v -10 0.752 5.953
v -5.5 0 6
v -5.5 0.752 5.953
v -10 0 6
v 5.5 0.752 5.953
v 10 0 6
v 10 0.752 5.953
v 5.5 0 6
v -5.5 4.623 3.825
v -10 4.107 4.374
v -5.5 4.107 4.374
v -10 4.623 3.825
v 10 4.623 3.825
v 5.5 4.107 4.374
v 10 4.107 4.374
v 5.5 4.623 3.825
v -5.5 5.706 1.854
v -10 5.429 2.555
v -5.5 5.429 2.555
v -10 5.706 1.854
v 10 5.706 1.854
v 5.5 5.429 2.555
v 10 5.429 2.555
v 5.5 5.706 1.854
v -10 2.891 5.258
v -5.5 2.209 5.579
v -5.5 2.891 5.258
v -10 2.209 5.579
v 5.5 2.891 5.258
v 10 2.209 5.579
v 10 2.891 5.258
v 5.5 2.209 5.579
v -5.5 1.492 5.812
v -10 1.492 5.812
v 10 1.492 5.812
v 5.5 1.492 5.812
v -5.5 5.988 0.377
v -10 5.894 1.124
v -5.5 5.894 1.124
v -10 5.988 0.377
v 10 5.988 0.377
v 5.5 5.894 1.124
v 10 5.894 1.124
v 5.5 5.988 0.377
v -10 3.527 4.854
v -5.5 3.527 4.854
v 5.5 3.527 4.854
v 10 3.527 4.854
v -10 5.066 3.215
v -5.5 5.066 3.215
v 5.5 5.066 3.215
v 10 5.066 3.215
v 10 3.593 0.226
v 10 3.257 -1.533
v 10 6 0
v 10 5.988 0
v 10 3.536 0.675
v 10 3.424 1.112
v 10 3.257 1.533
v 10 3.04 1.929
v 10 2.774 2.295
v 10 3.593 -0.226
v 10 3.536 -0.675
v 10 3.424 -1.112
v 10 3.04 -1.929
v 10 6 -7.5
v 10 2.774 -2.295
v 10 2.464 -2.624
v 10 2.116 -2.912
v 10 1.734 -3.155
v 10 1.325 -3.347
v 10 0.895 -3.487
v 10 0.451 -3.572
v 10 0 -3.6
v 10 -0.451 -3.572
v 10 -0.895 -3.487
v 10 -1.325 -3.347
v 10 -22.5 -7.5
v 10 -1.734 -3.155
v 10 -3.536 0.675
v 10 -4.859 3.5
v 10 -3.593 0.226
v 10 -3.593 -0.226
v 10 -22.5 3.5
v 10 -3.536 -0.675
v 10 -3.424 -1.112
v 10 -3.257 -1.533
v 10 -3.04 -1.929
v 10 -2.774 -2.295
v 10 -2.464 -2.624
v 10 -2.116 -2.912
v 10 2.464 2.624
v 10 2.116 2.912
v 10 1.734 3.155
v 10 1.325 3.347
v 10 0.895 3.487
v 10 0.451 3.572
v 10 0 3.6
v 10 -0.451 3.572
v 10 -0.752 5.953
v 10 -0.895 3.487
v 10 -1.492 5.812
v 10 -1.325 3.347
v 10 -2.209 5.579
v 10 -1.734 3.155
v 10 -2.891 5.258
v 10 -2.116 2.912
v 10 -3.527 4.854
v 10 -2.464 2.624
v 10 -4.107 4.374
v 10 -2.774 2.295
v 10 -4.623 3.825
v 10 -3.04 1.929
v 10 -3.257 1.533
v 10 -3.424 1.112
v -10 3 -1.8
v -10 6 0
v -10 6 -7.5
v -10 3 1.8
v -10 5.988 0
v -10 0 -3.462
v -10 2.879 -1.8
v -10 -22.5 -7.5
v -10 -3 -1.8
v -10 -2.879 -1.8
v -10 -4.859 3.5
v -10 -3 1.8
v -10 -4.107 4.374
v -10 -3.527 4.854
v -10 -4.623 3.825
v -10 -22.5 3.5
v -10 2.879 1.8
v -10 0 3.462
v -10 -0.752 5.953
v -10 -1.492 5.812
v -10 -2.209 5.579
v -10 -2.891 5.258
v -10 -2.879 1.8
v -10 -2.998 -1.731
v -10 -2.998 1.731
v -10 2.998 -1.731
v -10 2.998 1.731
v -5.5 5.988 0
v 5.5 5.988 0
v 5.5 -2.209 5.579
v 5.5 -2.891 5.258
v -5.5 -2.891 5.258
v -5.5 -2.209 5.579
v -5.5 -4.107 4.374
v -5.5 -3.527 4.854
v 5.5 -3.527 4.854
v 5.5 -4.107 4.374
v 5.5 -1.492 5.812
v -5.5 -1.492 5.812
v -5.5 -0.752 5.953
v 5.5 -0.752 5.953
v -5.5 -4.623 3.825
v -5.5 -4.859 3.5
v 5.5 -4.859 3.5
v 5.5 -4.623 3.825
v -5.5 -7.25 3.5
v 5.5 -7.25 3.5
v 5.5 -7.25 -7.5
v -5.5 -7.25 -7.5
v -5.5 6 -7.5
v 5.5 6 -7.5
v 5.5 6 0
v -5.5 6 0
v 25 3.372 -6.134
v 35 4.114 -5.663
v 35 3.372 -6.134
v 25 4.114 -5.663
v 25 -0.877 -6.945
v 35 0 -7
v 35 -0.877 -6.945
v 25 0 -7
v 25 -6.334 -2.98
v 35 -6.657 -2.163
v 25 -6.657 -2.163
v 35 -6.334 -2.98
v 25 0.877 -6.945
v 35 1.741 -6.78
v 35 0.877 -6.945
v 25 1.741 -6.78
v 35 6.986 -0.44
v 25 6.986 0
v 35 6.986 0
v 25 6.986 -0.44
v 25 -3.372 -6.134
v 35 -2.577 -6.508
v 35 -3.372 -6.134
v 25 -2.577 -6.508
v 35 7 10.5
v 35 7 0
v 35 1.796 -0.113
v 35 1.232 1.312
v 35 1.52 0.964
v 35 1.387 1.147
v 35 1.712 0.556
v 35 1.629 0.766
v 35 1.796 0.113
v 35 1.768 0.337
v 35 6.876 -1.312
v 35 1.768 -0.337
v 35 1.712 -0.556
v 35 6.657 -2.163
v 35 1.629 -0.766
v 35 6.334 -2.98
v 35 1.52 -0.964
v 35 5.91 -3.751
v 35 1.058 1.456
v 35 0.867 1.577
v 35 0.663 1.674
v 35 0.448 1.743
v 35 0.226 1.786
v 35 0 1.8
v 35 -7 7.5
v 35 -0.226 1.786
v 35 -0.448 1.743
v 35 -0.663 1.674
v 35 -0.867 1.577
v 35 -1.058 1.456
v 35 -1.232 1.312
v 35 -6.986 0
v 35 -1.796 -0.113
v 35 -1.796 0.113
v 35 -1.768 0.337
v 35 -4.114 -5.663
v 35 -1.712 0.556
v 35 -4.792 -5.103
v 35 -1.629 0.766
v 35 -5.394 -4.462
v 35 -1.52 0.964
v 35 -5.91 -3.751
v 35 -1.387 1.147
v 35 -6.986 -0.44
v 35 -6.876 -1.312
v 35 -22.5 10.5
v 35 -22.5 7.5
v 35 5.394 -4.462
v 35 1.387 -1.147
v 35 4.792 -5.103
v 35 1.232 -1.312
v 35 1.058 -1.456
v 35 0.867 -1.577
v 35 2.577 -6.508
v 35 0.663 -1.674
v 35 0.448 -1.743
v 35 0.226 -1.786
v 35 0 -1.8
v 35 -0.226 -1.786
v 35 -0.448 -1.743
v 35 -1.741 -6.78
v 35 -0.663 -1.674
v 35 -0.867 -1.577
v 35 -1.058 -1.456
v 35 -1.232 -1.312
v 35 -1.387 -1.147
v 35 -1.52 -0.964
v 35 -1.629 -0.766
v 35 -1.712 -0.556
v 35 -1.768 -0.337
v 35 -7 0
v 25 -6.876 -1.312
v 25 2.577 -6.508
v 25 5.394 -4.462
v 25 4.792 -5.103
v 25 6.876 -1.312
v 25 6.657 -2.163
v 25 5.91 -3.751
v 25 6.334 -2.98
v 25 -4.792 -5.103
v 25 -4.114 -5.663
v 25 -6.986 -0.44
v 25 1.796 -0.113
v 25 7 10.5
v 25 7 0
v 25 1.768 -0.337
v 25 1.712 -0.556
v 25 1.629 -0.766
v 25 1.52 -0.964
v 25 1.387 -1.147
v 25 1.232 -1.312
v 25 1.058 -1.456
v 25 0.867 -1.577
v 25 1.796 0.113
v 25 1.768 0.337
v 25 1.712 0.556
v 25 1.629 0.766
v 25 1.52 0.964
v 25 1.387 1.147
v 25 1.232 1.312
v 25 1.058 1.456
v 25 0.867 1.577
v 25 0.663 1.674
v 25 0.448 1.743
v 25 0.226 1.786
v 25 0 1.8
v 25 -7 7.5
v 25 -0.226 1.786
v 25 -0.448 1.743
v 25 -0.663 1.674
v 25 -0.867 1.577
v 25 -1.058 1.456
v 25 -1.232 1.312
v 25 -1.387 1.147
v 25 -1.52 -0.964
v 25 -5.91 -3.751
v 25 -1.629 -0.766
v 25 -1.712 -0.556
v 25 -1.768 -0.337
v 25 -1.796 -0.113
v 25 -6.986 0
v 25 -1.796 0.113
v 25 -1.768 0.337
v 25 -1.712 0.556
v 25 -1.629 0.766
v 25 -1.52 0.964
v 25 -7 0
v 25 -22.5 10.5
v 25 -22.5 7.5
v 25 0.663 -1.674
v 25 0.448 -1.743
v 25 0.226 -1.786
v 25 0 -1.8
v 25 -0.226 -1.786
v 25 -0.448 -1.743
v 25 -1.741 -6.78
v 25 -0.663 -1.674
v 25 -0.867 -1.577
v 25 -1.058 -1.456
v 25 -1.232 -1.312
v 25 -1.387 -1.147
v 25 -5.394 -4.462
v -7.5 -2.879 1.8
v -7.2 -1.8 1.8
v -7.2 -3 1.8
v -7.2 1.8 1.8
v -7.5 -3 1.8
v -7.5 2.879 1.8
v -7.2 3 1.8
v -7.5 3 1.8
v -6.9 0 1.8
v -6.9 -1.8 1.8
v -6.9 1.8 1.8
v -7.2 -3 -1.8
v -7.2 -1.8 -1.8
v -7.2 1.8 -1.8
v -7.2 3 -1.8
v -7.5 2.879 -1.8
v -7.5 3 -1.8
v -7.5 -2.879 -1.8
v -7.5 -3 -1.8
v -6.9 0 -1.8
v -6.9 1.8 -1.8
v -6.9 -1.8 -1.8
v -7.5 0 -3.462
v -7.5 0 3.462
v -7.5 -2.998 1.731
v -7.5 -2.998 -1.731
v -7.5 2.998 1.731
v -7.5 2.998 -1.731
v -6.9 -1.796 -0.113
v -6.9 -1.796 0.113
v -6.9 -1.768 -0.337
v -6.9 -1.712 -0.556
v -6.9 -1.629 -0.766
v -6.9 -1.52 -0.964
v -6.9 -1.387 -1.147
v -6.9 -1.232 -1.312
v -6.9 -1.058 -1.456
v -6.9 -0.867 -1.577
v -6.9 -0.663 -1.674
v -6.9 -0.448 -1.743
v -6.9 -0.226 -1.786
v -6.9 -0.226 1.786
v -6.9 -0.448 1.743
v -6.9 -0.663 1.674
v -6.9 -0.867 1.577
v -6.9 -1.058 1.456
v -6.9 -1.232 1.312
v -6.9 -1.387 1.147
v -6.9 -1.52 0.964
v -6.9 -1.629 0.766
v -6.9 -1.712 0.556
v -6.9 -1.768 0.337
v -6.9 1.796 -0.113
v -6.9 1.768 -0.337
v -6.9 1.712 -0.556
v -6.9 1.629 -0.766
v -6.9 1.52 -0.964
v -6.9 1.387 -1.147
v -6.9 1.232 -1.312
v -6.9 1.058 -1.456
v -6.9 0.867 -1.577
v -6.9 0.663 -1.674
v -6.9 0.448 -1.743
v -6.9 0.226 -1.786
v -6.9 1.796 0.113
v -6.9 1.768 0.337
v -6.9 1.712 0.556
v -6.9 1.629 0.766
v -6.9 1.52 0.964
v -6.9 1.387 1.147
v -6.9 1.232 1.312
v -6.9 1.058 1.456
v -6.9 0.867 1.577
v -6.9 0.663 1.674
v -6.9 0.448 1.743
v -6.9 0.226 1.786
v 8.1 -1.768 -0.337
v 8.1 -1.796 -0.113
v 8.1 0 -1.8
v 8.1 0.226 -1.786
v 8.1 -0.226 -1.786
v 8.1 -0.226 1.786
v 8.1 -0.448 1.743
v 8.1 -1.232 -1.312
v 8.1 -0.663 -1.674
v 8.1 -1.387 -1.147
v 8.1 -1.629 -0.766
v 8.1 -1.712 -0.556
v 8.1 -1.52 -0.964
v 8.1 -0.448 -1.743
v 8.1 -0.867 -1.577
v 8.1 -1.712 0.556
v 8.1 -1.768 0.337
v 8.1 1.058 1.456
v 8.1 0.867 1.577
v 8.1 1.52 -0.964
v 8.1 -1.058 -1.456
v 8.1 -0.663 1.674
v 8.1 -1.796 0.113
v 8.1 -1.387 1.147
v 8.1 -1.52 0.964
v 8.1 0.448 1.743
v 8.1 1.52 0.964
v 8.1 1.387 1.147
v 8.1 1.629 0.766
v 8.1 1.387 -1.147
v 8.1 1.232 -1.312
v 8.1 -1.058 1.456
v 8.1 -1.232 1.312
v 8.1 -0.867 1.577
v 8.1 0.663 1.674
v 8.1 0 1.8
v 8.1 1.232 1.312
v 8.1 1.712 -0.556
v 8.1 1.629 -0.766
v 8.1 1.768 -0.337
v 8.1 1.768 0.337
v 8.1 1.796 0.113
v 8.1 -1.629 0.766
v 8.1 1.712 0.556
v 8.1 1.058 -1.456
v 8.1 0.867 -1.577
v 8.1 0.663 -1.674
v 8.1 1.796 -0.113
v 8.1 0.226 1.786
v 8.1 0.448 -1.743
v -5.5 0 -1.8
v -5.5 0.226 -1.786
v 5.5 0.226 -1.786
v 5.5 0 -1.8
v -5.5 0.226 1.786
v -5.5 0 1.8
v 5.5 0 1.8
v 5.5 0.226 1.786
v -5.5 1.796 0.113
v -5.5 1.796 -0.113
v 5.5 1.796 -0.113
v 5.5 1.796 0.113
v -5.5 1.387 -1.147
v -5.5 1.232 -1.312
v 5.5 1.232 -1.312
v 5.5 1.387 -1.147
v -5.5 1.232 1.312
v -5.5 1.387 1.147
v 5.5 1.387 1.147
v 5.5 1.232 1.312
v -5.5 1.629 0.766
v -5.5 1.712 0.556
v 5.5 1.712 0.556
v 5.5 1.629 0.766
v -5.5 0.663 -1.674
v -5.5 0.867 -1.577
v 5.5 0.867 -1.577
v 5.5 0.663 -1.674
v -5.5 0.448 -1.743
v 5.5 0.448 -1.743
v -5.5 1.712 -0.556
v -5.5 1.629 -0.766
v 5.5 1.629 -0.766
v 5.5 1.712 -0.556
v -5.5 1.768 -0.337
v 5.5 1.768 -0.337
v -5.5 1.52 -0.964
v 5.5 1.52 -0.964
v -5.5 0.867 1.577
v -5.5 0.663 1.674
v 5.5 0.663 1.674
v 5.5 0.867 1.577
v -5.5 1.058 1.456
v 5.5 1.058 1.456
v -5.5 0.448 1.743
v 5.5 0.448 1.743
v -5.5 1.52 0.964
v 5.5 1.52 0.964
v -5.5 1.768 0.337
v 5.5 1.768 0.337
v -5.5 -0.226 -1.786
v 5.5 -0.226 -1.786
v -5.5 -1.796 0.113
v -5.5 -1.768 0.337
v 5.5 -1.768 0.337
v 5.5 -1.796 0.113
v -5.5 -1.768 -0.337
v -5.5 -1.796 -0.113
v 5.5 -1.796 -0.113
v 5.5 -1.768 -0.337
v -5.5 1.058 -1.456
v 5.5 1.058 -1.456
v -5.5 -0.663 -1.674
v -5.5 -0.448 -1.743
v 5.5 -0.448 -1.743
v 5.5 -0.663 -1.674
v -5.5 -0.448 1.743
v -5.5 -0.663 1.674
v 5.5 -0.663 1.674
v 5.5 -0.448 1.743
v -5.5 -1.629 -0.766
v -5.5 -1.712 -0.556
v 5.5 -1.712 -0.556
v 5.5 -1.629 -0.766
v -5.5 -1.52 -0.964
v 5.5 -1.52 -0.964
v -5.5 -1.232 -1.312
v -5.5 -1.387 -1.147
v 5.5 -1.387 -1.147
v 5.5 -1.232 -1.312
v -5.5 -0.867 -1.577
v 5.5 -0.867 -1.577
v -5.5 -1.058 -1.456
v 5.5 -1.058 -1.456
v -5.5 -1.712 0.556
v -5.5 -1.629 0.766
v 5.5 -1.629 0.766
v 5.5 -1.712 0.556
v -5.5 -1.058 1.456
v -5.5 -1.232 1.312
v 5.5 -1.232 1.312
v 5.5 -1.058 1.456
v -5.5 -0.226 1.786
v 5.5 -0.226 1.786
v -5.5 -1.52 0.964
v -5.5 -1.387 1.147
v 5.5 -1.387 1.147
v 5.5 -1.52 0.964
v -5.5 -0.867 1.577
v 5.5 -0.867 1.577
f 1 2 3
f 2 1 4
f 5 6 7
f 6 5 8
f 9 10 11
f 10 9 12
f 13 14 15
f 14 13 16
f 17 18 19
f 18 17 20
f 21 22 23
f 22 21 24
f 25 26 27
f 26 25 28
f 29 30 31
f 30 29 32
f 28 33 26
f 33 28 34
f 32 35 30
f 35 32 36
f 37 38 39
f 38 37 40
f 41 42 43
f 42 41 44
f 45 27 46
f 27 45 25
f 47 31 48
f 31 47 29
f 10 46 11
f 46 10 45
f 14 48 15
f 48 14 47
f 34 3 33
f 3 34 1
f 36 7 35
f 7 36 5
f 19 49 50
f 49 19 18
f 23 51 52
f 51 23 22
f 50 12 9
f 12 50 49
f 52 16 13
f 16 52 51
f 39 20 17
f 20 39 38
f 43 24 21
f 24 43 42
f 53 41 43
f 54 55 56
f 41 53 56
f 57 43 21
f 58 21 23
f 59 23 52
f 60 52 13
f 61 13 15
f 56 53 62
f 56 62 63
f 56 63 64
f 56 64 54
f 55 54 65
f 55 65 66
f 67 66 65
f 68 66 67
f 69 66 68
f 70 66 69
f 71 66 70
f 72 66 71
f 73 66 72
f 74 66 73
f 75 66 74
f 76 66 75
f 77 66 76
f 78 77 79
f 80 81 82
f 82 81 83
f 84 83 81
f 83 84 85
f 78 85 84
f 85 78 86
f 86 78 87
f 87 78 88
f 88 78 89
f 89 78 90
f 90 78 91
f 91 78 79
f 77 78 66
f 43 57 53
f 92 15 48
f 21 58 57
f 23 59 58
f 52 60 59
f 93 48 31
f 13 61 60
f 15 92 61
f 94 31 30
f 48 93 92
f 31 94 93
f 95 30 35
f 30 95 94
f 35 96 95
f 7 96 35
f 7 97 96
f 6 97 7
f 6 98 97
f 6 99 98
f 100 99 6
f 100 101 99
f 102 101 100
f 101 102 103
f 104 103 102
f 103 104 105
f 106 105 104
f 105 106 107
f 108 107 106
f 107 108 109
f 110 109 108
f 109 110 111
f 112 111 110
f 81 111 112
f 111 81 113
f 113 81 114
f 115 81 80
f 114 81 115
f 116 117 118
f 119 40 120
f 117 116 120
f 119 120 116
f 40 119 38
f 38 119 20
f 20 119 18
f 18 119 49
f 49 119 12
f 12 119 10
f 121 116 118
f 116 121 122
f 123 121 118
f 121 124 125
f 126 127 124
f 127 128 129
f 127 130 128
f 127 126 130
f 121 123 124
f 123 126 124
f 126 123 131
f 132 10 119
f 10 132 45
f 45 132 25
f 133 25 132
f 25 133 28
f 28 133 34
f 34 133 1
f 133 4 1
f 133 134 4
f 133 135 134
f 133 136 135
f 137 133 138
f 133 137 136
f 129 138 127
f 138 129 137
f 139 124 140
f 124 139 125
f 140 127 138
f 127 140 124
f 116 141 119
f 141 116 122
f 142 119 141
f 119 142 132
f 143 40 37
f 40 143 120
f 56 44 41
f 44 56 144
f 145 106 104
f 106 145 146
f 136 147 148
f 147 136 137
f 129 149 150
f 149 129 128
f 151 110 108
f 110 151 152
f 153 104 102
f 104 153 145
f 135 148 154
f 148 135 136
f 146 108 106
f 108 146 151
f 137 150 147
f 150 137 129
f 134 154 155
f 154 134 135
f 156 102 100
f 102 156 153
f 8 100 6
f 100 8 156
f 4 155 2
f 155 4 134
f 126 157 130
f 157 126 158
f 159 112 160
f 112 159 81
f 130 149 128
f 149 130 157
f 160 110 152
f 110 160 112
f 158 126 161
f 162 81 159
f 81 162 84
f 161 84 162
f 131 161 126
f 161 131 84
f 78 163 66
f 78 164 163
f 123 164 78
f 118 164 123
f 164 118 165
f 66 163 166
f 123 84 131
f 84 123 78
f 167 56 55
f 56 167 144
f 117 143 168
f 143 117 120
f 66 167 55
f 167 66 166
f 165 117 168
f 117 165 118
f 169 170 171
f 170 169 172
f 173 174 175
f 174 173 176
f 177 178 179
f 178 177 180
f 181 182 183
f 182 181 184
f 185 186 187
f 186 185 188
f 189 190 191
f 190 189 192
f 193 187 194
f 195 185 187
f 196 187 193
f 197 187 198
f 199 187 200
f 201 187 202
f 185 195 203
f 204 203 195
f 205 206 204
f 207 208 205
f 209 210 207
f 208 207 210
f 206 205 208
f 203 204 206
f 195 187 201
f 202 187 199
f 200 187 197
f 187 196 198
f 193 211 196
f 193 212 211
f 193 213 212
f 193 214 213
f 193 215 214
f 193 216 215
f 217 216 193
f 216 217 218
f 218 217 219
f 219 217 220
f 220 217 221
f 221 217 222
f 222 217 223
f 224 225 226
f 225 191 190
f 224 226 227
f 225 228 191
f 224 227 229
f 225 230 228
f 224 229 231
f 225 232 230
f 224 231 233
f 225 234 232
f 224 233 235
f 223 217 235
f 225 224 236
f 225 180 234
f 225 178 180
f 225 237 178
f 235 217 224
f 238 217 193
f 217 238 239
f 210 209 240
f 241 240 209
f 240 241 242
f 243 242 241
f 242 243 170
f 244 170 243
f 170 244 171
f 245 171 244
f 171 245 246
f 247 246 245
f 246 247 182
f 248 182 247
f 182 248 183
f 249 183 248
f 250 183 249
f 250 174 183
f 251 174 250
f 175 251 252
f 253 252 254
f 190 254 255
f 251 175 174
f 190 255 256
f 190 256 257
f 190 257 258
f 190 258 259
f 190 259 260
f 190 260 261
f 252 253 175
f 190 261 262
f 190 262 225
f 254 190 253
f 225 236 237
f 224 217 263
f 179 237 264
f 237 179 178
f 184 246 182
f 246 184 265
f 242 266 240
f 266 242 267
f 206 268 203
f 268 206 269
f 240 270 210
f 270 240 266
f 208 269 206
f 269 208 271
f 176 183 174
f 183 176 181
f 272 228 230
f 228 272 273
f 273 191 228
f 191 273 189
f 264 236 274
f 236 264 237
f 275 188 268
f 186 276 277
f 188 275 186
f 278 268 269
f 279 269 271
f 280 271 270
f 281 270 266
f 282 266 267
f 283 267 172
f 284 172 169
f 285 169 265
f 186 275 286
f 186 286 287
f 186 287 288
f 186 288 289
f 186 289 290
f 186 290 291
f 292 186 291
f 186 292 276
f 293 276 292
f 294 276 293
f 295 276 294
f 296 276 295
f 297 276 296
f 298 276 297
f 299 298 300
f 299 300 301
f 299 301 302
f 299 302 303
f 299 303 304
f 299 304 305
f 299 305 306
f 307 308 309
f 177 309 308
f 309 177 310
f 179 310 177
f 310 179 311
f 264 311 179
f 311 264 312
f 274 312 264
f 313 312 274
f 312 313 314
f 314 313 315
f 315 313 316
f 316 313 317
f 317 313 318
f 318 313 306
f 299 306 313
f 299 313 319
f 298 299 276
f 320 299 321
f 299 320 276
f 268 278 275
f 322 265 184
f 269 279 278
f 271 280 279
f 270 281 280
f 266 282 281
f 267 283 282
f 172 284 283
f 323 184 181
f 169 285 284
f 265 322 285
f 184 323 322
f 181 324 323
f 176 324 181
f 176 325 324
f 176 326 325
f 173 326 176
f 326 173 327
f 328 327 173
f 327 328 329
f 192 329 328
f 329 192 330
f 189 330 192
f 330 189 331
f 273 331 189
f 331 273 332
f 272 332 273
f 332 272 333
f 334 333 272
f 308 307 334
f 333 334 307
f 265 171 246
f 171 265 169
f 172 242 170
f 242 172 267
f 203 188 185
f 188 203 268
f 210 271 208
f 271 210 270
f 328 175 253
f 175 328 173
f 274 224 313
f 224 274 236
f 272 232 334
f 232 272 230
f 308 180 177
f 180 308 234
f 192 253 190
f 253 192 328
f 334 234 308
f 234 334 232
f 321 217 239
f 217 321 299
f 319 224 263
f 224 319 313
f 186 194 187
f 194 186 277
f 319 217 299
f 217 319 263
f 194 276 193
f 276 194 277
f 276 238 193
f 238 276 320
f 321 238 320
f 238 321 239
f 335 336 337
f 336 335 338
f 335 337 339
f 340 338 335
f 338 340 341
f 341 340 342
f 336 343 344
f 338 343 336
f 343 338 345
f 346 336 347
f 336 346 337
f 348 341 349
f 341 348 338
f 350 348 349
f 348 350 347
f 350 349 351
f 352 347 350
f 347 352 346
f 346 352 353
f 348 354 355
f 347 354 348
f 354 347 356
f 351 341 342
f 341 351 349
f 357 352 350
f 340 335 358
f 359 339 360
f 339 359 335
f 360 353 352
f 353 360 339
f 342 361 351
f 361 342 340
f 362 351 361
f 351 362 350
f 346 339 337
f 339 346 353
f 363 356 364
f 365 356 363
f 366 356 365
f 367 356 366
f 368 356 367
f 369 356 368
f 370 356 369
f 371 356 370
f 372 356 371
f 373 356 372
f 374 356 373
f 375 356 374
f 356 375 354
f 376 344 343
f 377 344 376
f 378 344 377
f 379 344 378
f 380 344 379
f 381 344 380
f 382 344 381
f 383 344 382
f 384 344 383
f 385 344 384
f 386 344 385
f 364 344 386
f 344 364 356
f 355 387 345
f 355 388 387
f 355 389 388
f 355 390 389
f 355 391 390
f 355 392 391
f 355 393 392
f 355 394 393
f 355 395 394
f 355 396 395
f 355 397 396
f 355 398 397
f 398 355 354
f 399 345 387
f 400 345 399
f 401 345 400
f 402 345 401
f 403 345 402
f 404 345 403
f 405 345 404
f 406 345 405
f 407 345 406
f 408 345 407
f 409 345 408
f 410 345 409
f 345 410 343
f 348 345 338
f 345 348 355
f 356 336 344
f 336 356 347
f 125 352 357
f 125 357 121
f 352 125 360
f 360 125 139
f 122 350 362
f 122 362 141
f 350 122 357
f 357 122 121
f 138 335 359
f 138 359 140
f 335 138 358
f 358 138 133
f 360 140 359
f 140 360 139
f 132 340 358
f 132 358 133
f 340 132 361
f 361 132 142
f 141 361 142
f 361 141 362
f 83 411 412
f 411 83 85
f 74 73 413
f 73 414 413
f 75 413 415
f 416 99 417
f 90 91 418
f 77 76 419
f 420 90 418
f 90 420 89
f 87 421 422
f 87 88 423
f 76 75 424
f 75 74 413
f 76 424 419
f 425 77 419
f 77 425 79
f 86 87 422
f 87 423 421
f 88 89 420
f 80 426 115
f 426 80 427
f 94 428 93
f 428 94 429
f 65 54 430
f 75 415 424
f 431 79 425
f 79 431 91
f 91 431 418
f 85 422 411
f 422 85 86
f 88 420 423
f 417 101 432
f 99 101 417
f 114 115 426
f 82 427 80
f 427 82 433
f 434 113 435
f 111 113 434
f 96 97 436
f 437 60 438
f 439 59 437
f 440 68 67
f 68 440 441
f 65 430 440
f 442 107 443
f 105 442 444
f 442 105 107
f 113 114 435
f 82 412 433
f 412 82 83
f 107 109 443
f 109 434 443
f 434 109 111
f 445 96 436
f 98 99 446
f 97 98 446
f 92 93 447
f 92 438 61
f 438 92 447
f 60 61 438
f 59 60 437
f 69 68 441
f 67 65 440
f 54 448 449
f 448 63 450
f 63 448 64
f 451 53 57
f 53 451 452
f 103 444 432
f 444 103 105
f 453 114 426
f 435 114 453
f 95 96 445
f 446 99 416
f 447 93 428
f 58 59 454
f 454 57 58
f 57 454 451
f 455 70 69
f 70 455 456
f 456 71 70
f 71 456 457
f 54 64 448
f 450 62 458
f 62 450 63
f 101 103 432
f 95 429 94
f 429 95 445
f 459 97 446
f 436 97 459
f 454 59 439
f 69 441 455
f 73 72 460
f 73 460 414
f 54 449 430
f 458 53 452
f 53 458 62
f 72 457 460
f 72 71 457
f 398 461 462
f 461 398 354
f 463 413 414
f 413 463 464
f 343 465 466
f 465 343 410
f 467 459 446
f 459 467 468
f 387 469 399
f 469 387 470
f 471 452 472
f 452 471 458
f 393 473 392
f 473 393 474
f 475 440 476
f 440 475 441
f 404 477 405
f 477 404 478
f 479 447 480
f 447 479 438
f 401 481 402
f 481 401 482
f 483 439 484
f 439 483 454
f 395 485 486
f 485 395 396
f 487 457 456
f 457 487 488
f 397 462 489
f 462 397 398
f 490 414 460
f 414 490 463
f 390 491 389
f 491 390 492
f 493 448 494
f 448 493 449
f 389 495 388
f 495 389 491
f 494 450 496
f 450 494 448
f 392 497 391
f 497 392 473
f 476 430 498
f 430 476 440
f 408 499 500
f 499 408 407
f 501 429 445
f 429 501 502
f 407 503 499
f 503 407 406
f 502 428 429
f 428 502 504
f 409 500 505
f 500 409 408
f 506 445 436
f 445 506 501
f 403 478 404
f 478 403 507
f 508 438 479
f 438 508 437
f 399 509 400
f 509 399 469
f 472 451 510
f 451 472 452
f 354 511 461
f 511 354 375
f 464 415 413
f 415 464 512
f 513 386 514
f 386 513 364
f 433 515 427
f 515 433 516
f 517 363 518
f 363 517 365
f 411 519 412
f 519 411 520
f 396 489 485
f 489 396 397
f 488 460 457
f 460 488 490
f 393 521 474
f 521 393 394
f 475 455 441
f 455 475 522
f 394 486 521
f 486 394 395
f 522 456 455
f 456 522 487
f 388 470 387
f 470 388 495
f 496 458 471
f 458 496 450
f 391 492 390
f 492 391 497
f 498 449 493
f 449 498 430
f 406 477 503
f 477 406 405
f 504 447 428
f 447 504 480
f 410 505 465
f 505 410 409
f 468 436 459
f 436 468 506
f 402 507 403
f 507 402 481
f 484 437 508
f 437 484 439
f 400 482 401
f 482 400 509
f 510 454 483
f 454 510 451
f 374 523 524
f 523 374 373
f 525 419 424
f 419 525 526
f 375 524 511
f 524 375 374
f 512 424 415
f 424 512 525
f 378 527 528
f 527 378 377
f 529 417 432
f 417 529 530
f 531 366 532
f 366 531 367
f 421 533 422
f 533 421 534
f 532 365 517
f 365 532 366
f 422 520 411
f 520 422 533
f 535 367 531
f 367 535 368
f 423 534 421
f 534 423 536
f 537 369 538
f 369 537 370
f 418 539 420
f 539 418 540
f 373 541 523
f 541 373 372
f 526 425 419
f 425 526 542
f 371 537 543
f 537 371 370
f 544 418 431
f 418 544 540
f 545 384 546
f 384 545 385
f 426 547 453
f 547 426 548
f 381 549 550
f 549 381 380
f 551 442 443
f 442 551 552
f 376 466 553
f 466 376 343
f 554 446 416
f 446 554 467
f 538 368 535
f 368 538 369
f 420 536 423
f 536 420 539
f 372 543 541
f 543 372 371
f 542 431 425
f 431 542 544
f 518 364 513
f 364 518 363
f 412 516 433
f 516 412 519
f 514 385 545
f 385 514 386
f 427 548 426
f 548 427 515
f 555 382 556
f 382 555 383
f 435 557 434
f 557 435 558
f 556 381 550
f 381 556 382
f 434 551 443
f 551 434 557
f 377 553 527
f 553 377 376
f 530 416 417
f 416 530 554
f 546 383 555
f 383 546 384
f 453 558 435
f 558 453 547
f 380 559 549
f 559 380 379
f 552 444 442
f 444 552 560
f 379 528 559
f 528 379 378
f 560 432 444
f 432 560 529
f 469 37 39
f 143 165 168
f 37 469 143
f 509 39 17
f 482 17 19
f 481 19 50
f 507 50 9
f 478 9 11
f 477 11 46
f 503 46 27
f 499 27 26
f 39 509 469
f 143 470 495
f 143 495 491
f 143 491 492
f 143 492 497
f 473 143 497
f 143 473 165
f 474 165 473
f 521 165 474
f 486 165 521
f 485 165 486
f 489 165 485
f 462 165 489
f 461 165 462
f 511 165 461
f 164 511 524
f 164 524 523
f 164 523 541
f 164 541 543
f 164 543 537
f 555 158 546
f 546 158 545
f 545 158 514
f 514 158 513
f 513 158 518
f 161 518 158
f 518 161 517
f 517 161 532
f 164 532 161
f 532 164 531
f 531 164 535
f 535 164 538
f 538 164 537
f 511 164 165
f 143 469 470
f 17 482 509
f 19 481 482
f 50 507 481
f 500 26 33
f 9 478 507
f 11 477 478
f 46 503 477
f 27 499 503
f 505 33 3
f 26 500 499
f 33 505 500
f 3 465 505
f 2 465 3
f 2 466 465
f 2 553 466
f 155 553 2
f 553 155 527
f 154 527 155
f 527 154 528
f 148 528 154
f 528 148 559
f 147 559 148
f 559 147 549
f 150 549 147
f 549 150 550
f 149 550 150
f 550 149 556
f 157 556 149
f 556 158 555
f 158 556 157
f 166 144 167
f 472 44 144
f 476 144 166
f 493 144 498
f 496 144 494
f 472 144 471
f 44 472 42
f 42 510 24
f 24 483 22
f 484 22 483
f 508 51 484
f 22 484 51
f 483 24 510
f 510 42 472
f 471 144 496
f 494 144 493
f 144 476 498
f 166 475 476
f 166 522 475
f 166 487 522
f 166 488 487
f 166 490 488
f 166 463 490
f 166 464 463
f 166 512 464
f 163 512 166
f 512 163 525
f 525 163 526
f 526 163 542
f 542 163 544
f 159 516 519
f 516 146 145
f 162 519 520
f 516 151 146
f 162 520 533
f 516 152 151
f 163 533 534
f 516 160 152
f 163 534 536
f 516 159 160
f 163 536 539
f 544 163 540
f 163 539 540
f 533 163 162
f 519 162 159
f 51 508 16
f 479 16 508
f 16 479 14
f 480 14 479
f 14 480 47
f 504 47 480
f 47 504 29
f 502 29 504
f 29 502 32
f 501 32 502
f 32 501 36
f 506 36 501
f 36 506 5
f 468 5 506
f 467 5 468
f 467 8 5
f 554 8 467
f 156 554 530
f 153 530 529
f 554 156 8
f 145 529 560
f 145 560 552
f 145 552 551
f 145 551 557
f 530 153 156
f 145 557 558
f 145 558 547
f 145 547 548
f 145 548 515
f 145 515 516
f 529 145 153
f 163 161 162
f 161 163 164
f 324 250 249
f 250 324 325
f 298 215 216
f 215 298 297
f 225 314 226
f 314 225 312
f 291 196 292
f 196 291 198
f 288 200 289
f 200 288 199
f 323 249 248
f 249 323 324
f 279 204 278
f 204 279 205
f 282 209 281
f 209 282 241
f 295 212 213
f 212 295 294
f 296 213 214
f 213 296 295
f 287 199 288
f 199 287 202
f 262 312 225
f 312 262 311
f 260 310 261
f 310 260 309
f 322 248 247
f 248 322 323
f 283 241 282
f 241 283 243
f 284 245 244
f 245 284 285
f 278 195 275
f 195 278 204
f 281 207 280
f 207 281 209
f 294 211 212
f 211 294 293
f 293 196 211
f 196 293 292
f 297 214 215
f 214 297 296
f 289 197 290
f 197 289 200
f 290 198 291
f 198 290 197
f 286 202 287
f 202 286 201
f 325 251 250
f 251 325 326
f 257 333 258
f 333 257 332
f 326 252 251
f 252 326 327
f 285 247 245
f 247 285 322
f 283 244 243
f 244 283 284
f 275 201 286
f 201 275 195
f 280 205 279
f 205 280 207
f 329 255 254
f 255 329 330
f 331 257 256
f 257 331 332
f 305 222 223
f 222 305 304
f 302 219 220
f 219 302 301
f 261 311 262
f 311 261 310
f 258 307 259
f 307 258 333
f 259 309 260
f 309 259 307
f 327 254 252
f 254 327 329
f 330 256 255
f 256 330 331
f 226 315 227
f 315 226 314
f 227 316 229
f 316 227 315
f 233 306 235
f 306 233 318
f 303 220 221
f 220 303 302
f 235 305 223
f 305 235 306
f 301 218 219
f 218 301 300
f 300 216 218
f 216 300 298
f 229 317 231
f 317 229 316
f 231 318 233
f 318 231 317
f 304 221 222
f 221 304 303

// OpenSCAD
$fn = 50;


difference() {
	union() {
		translate(v = [-10.0000000000, 0, 0.0000000000]) {
			rotate(a = [0, 90, 0]) {
				cylinder(h = 20, r = 6.0000000000);
			}
		}
		#translate(v = [-10.0000000000, -22.5000000000, -7.5000000000]) {
			cube(size = [20, 22.5000000000, 11]);
		}
		translate(v = [-10.0000000000, -21.0000000000, -7.5000000000]) {
			cube(size = [20, 27, 7.5000000000]);
		}
		translate(v = [25.0000000000, 0, 0.0000000000]) {
			rotate(a = [0, 90, 0]) {
				cylinder(h = 10, r = 7.0000000000);
			}
		}
		translate(v = [25.0000000000, -7.0000000000, 0]) {
			cube(size = [10, 14, 7.5000000000]);
		}
		translate(v = [25.0000000000, -22.5000000000, 7.5000000000]) {
			cube(size = [10, 29.5000000000, 3]);
		}
	}
	union() {
		translate(v = [10.0000000000, 0, 0]) {
			rotate(a = [0, 90, 0]) {
				difference() {
					union() {
						translate(v = [0, 0, -20.0000000000]) {
							rotate(a = [0, 0, 0]) {
								difference() {
									union() {
										translate(v = [-1.8000000000, -3.0000000000, -0.3000000000]) {
											cube(size = [3.6000000000, 6.0000000000, 0.3000000000]);
										}
										translate(v = [-1.8000000000, -1.8000000000, -0.6000000000]) {
											cube(size = [3.6000000000, 3.6000000000, 0.3000000000]);
										}
										translate(v = [-1.8000000000, -3.0000000000, 2.5000000000]) {
											cube(size = [3.6000000000, 6.0000000000, 0.3000000000]);
										}
										translate(v = [-1.8000000000, -1.8000000000, 2.8000000000]) {
											cube(size = [3.6000000000, 3.6000000000, 0.3000000000]);
										}
										linear_extrude(height = 2.5000000000) {
											polygon(points = [[3.4620000000, 0.0000000000], [1.7310000000, 2.9981799479], [-1.7310000000, 2.9981799479], [-3.4620000000, 0.0000000000], [-1.7310000000, -2.9981799479], [1.7310000000, -2.9981799479]]);
										}
										translate(v = [-1.8000000000, -3.0000000000, -0.3000000000]) {
											cube(size = [3.6000000000, 6.0000000000, 0.3000000000]);
										}
										translate(v = [-1.8000000000, -1.8000000000, -0.6000000000]) {
											cube(size = [3.6000000000, 3.6000000000, 0.3000000000]);
										}
										translate(v = [-1.8000000000, -3.0000000000, 2.5000000000]) {
											cube(size = [3.6000000000, 6.0000000000, 0.3000000000]);
										}
										translate(v = [-1.8000000000, -1.8000000000, 2.8000000000]) {
											cube(size = [3.6000000000, 3.6000000000, 0.3000000000]);
										}
										translate(v = [-1.8000000000, -3.0000000000, -0.3000000000]) {
											cube(size = [3.6000000000, 6.0000000000, 0.3000000000]);
										}
										translate(v = [-1.8000000000, -1.8000000000, -0.6000000000]) {
											cube(size = [3.6000000000, 3.6000000000, 0.3000000000]);
										}
										translate(v = [-1.8000000000, -3.0000000000, 2.5000000000]) {
											cube(size = [3.6000000000, 6.0000000000, 0.3000000000]);
										}
										translate(v = [-1.8000000000, -1.8000000000, 2.8000000000]) {
											cube(size = [3.6000000000, 3.6000000000, 0.3000000000]);
										}
									}
									union();
								}
							}
						}
						translate(v = [0, 0, -20.0000000000]) {
							rotate(a = [0, 0, 0]) {
								difference() {
									union() {
										translate(v = [-1.8000000000, -3.0000000000, -0.3000000000]) {
											cube(size = [3.6000000000, 6.0000000000, 0.3000000000]);
										}
										translate(v = [-1.8000000000, -1.8000000000, -0.6000000000]) {
											cube(size = [3.6000000000, 3.6000000000, 0.3000000000]);
										}
										translate(v = [-1.8000000000, -3.0000000000, 2.5000000000]) {
											cube(size = [3.6000000000, 6.0000000000, 0.3000000000]);
										}
										translate(v = [-1.8000000000, -1.8000000000, 2.8000000000]) {
											cube(size = [3.6000000000, 3.6000000000, 0.3000000000]);
										}
										linear_extrude(height = 2.5000000000) {
											polygon(points = [[3.4620000000, 0.0000000000], [1.7310000000, 2.9981799479], [-1.7310000000, 2.9981799479], [-3.4620000000, 0.0000000000], [-1.7310000000, -2.9981799479], [1.7310000000, -2.9981799479]]);
										}
										translate(v = [-1.8000000000, -3.0000000000, -0.3000000000]) {
											cube(size = [3.6000000000, 6.0000000000, 0.3000000000]);
										}
										translate(v = [-1.8000000000, -1.8000000000, -0.6000000000]) {
											cube(size = [3.6000000000, 3.6000000000, 0.3000000000]);
										}
										translate(v = [-1.8000000000, -3.0000000000, 2.5000000000]) {
											cube(size = [3.6000000000, 6.0000000000, 0.3000000000]);
										}
										translate(v = [-1.8000000000, -1.8000000000, 2.8000000000]) {
											cube(size = [3.6000000000, 3.6000000000, 0.3000000000]);
										}
										translate(v = [-1.8000000000, -3.0000000000, -0.3000000000]) {
											cube(size = [3.6000000000, 6.0000000000, 0.3000000000]);
										}
										translate(v = [-1.8000000000, -1.8000000000, -0.6000000000]) {
											cube(size = [3.6000000000, 3.6000000000, 0.3000000000]);
										}
										translate(v = [-1.8000000000, -3.0000000000, 2.5000000000]) {
											cube(size = [3.6000000000, 6.0000000000, 0.3000000000]);
										}
										translate(v = [-1.8000000000, -1.8000000000, 2.8000000000]) {
											cube(size = [3.6000000000, 3.6000000000, 0.3000000000]);
										}
									}
									union();
								}
							}
						}
						translate(v = [0, 0, -20.0000000000]) {
							rotate(a = [0, 0, 0]) {
								difference() {
									union() {
										translate(v = [-1.8000000000, -3.0000000000, -0.3000000000]) {
											cube(size = [3.6000000000, 6.0000000000, 0.3000000000]);
										}
										translate(v = [-1.8000000000, -1.8000000000, -0.6000000000]) {
											cube(size = [3.6000000000, 3.6000000000, 0.3000000000]);
										}
										translate(v = [-1.8000000000, -3.0000000000, 2.5000000000]) {
											cube(size = [3.6000000000, 6.0000000000, 0.3000000000]);
										}
										translate(v = [-1.8000000000, -1.8000000000, 2.8000000000]) {
											cube(size = [3.6000000000, 3.6000000000, 0.3000000000]);
										}
										linear_extrude(height = 2.5000000000) {
											polygon(points = [[3.4620000000, 0.0000000000], [1.7310000000, 2.9981799479], [-1.7310000000, 2.9981799479], [-3.4620000000, 0.0000000000], [-1.7310000000, -2.9981799479], [1.7310000000, -2.9981799479]]);
										}
										translate(v = [-1.8000000000, -3.0000000000, -0.3000000000]) {
											cube(size = [3.6000000000, 6.0000000000, 0.3000000000]);
										}
										translate(v = [-1.8000000000, -1.8000000000, -0.6000000000]) {
											cube(size = [3.6000000000, 3.6000000000, 0.3000000000]);
										}
										translate(v = [-1.8000000000, -3.0000000000, 2.5000000000]) {
											cube(size = [3.6000000000, 6.0000000000, 0.3000000000]);
										}
										translate(v = [-1.8000000000, -1.8000000000, 2.8000000000]) {
											cube(size = [3.6000000000, 3.6000000000, 0.3000000000]);
										}
										translate(v = [-1.8000000000, -3.0000000000, -0.3000000000]) {
											cube(size = [3.6000000000, 6.0000000000, 0.3000000000]);
										}
										translate(v = [-1.8000000000, -1.8000000000, -0.6000000000]) {
											cube(size = [3.6000000000, 3.6000000000, 0.3000000000]);
										}
										translate(v = [-1.8000000000, -3.0000000000, 2.5000000000]) {
											cube(size = [3.6000000000, 6.0000000000, 0.3000000000]);
										}
										translate(v = [-1.8000000000, -1.8000000000, 2.8000000000]) {
											cube(size = [3.6000000000, 3.6000000000, 0.3000000000]);
										}
									}
									union();
								}
							}
						}
						translate(v = [0, 0, -20.0000000000]) {
							cylinder(h = 20, r = 1.5000000000);
						}
						translate(v = [0, 0, -1.9000000000]) {
							cylinder(h = 1.9000000000, r1 = 1.8000000000, r2 = 3.6000000000);
						}
						translate(v = [0, 0, -20.0000000000]) {
							cylinder(h = 20, r = 1.8000000000);
						}
						translate(v = [0, 0, -20.0000000000]) {
							cylinder(h = 20, r = 1.5000000000);
						}
					}
					union();
				}
			}
		}
		translate(v = [-5.5000000000, -7.2500000000, -7.5000000000]) {
			cube(size = [11, 17.5000000000, 15]);
		}
		translate(v = [25.0000000000, 0, 0]) {
			rotate(a = [0, 90, 0]) {
				cylinder(h = 10, r = 1.8000000000);
			}
		}
	}
}
